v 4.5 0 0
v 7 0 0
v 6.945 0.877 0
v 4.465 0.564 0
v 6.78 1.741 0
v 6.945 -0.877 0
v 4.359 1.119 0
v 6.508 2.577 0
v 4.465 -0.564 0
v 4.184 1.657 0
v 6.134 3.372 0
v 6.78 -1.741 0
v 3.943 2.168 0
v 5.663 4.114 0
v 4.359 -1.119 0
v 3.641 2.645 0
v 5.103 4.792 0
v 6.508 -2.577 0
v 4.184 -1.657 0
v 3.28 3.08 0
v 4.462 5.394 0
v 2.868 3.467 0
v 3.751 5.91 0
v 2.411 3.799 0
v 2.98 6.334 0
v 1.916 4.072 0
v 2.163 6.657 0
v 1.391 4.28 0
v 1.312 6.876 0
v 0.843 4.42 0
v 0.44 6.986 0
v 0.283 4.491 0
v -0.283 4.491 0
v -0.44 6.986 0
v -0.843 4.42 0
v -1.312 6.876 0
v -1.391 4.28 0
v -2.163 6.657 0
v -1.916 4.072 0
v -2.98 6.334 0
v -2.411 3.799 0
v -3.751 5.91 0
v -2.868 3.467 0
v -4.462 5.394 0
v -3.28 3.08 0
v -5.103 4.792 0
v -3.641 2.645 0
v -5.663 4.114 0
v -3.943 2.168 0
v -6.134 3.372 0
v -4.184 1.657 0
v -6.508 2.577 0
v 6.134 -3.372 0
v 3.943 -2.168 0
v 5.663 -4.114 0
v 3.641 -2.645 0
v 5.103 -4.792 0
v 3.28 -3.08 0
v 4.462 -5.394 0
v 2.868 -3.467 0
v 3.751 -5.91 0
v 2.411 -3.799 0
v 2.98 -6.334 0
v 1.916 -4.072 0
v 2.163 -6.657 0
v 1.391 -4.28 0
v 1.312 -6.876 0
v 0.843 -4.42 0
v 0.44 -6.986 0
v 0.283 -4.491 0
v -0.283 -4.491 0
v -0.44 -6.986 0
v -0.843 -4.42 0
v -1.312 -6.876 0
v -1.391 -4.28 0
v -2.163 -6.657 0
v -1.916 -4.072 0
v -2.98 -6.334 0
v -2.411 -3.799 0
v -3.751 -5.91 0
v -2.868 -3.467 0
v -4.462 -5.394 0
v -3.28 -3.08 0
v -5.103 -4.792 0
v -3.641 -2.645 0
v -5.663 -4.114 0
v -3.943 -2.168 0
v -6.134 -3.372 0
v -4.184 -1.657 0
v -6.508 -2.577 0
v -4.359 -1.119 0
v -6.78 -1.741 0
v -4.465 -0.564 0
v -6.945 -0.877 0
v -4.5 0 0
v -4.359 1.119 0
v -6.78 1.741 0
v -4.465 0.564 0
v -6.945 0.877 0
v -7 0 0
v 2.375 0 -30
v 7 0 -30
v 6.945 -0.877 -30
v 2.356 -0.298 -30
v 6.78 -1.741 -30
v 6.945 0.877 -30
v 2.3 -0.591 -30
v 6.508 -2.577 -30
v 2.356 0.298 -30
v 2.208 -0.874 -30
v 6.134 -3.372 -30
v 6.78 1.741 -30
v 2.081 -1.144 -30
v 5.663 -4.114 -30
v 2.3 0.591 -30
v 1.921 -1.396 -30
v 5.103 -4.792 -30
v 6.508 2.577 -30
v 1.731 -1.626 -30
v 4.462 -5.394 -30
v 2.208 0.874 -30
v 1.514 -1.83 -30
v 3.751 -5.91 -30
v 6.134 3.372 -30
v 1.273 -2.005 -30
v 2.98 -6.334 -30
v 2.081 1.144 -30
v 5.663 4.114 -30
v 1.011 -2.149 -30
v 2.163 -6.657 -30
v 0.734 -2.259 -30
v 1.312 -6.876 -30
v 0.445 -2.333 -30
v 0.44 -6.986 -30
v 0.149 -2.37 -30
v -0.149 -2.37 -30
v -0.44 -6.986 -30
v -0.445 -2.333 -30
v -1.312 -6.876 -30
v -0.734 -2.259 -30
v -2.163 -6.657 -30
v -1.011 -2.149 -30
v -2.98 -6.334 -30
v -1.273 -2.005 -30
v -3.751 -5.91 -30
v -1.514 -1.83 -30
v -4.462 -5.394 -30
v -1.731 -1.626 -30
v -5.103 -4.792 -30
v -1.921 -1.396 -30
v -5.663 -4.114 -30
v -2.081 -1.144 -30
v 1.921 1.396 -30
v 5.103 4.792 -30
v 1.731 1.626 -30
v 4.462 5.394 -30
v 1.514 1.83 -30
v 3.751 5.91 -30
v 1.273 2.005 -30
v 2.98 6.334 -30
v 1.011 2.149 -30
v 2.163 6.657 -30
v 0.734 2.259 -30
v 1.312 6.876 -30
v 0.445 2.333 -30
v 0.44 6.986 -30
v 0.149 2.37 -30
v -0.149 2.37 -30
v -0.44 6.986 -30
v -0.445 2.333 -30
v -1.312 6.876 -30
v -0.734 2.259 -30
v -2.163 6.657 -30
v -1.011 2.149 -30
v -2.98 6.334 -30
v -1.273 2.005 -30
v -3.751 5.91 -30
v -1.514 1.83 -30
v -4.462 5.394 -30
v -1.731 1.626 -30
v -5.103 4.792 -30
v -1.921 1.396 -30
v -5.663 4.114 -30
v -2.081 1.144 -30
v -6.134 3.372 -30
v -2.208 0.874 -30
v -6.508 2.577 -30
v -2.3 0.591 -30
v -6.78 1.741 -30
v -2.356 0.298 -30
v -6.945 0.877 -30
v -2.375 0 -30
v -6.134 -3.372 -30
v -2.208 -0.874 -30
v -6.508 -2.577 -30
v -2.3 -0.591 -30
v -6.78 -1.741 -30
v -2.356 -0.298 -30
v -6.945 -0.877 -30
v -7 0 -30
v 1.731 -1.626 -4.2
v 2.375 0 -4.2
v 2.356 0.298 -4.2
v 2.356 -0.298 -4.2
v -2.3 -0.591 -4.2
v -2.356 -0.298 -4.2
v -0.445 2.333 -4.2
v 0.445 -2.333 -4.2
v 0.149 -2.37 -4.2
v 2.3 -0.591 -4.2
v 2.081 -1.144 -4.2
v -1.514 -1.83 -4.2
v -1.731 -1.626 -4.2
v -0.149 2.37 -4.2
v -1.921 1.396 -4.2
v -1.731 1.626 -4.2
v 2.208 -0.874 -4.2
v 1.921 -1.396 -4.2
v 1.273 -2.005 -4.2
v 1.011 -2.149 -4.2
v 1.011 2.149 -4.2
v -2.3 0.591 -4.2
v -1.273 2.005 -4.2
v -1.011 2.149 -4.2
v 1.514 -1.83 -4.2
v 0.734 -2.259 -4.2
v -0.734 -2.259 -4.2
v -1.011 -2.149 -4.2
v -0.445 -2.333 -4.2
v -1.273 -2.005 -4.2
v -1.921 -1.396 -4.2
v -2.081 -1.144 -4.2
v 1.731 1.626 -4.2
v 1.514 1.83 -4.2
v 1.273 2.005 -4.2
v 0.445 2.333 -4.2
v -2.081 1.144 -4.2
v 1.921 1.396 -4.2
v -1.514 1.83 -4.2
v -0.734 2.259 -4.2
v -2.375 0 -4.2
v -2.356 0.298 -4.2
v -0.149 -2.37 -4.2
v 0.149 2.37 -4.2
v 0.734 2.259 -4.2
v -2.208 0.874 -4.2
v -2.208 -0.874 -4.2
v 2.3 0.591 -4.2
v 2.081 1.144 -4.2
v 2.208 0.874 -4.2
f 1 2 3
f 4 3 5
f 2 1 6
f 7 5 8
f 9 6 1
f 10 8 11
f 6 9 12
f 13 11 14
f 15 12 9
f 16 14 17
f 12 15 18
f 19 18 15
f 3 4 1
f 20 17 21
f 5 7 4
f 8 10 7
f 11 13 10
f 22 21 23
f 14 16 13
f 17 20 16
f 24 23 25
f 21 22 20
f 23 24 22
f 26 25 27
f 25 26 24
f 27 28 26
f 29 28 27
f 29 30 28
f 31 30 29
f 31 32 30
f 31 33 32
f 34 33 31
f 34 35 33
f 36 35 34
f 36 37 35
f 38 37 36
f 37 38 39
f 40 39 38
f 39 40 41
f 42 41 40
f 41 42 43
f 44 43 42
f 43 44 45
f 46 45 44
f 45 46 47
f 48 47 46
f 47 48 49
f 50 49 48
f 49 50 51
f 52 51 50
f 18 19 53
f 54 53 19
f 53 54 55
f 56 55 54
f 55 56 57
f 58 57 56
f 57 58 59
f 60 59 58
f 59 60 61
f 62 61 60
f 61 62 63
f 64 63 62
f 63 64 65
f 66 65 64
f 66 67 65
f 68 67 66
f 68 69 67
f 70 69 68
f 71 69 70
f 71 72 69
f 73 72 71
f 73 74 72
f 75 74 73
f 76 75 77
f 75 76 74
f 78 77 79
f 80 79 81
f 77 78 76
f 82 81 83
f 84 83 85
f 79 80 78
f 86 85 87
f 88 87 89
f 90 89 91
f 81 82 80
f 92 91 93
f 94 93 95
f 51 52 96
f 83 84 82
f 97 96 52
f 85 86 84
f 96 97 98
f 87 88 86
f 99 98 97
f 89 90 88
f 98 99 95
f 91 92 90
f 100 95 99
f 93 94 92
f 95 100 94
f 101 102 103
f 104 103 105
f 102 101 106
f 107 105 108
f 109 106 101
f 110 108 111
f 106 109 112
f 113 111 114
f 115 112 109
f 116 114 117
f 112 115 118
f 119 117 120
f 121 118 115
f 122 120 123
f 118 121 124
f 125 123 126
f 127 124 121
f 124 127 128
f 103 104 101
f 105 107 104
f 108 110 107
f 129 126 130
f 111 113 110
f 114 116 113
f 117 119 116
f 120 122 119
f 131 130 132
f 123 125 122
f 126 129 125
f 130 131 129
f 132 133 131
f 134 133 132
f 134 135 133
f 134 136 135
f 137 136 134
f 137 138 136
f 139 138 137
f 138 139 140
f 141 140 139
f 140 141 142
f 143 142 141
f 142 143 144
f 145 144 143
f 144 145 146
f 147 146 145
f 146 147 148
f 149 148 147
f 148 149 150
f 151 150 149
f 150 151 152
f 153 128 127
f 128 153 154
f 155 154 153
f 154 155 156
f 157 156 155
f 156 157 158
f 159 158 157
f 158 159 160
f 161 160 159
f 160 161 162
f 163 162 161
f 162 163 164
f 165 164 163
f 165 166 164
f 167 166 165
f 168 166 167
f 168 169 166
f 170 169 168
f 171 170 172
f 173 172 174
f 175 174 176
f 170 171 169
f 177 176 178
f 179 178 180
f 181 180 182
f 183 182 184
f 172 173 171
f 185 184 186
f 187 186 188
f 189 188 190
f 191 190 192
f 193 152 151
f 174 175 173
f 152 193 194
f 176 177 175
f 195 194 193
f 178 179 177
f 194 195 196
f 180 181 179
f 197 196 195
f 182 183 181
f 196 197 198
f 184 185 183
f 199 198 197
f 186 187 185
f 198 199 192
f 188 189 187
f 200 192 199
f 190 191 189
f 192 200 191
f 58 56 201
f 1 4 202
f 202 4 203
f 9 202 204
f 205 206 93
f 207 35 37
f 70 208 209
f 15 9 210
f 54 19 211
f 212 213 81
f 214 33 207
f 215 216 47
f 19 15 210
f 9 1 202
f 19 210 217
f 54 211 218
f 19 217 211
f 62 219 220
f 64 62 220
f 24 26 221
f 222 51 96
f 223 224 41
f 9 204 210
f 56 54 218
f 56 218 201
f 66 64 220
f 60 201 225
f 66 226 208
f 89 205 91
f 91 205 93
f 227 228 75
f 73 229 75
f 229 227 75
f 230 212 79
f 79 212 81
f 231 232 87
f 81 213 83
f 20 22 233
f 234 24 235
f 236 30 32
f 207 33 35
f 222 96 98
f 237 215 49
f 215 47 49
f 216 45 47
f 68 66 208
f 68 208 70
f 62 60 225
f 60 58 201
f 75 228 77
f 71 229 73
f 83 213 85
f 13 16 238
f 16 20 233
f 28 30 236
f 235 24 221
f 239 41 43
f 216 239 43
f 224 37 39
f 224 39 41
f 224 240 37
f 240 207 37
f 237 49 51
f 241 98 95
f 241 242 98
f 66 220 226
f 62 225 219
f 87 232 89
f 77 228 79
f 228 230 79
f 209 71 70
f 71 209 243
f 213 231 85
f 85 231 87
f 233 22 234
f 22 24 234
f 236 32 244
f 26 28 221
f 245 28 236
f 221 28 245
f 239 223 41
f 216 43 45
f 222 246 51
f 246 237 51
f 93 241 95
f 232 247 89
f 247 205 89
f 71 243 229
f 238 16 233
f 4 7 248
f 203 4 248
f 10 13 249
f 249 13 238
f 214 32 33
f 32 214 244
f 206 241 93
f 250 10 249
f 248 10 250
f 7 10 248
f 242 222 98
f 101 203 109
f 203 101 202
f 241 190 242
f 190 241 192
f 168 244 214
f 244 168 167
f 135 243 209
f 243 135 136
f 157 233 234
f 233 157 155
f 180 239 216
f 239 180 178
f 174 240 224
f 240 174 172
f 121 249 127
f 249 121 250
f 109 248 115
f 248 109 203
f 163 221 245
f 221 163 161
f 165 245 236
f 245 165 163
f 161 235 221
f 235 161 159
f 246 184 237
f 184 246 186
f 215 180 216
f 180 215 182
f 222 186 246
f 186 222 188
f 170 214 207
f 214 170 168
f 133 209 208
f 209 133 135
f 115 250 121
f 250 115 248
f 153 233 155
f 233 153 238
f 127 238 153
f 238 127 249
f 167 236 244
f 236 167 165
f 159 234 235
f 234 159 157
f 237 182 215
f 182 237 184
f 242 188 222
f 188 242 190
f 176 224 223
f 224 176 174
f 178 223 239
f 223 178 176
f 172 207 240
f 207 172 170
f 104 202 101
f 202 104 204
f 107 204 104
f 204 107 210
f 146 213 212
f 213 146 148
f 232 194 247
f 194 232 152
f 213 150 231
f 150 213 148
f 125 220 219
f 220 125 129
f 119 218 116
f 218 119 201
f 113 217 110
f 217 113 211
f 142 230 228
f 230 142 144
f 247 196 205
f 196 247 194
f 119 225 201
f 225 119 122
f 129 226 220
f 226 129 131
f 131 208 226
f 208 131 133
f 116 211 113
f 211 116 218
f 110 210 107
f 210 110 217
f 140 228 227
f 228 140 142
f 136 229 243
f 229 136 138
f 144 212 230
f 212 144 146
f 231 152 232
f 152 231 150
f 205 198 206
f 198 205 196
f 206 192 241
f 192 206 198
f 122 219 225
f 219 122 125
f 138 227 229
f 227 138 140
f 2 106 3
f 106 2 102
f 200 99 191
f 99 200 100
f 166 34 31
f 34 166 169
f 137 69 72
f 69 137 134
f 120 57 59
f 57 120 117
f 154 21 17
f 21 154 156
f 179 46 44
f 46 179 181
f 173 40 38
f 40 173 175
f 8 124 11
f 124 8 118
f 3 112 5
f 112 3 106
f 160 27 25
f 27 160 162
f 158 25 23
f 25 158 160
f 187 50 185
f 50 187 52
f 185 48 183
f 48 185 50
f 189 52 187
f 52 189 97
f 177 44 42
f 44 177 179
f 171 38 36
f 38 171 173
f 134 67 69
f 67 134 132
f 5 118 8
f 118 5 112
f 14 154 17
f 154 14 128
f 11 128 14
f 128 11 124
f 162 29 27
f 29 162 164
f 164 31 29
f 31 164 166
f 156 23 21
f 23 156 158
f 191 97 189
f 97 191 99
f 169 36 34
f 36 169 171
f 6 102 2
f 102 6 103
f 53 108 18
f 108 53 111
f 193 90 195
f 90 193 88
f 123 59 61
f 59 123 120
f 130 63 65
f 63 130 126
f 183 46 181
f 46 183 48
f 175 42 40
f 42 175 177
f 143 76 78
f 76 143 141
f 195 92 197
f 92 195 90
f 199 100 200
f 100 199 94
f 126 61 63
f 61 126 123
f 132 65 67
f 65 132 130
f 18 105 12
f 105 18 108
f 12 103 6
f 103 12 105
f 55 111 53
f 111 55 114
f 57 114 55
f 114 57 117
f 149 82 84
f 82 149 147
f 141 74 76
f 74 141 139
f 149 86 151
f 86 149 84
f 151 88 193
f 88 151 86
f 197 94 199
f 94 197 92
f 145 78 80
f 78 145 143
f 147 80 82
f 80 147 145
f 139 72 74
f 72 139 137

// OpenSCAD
$fn = 50;


difference() {
	union() {
		translate(v = [0, 0, -30.0000000000]) {
			cylinder(h = 30, r = 7.0000000000);
		}
		cylinder(h = 0, r = 13.0000000000);
	}
	union() {
		translate(v = [0, 0, 0]) {
			rotate(a = [0, 0, 0]) {
				difference() {
					union() {
						#translate(v = [0, 0, -30.0000000000]) {
							cylinder(h = 30, r = 2.2500000000);
						}
						#translate(v = [0, 0, -4.2000000000]) {
							cylinder(h = 4.2000000000, r1 = 2.3750000000, r2 = 4.5000000000);
						}
						#translate(v = [0, 0, -30.0000000000]) {
							cylinder(h = 30, r = 2.3750000000);
						}
						#translate(v = [0, 0, -30.0000000000]) {
							cylinder(h = 30, r = 2.2500000000);
						}
					}
					union();
				}
			}
		}
	}
}
